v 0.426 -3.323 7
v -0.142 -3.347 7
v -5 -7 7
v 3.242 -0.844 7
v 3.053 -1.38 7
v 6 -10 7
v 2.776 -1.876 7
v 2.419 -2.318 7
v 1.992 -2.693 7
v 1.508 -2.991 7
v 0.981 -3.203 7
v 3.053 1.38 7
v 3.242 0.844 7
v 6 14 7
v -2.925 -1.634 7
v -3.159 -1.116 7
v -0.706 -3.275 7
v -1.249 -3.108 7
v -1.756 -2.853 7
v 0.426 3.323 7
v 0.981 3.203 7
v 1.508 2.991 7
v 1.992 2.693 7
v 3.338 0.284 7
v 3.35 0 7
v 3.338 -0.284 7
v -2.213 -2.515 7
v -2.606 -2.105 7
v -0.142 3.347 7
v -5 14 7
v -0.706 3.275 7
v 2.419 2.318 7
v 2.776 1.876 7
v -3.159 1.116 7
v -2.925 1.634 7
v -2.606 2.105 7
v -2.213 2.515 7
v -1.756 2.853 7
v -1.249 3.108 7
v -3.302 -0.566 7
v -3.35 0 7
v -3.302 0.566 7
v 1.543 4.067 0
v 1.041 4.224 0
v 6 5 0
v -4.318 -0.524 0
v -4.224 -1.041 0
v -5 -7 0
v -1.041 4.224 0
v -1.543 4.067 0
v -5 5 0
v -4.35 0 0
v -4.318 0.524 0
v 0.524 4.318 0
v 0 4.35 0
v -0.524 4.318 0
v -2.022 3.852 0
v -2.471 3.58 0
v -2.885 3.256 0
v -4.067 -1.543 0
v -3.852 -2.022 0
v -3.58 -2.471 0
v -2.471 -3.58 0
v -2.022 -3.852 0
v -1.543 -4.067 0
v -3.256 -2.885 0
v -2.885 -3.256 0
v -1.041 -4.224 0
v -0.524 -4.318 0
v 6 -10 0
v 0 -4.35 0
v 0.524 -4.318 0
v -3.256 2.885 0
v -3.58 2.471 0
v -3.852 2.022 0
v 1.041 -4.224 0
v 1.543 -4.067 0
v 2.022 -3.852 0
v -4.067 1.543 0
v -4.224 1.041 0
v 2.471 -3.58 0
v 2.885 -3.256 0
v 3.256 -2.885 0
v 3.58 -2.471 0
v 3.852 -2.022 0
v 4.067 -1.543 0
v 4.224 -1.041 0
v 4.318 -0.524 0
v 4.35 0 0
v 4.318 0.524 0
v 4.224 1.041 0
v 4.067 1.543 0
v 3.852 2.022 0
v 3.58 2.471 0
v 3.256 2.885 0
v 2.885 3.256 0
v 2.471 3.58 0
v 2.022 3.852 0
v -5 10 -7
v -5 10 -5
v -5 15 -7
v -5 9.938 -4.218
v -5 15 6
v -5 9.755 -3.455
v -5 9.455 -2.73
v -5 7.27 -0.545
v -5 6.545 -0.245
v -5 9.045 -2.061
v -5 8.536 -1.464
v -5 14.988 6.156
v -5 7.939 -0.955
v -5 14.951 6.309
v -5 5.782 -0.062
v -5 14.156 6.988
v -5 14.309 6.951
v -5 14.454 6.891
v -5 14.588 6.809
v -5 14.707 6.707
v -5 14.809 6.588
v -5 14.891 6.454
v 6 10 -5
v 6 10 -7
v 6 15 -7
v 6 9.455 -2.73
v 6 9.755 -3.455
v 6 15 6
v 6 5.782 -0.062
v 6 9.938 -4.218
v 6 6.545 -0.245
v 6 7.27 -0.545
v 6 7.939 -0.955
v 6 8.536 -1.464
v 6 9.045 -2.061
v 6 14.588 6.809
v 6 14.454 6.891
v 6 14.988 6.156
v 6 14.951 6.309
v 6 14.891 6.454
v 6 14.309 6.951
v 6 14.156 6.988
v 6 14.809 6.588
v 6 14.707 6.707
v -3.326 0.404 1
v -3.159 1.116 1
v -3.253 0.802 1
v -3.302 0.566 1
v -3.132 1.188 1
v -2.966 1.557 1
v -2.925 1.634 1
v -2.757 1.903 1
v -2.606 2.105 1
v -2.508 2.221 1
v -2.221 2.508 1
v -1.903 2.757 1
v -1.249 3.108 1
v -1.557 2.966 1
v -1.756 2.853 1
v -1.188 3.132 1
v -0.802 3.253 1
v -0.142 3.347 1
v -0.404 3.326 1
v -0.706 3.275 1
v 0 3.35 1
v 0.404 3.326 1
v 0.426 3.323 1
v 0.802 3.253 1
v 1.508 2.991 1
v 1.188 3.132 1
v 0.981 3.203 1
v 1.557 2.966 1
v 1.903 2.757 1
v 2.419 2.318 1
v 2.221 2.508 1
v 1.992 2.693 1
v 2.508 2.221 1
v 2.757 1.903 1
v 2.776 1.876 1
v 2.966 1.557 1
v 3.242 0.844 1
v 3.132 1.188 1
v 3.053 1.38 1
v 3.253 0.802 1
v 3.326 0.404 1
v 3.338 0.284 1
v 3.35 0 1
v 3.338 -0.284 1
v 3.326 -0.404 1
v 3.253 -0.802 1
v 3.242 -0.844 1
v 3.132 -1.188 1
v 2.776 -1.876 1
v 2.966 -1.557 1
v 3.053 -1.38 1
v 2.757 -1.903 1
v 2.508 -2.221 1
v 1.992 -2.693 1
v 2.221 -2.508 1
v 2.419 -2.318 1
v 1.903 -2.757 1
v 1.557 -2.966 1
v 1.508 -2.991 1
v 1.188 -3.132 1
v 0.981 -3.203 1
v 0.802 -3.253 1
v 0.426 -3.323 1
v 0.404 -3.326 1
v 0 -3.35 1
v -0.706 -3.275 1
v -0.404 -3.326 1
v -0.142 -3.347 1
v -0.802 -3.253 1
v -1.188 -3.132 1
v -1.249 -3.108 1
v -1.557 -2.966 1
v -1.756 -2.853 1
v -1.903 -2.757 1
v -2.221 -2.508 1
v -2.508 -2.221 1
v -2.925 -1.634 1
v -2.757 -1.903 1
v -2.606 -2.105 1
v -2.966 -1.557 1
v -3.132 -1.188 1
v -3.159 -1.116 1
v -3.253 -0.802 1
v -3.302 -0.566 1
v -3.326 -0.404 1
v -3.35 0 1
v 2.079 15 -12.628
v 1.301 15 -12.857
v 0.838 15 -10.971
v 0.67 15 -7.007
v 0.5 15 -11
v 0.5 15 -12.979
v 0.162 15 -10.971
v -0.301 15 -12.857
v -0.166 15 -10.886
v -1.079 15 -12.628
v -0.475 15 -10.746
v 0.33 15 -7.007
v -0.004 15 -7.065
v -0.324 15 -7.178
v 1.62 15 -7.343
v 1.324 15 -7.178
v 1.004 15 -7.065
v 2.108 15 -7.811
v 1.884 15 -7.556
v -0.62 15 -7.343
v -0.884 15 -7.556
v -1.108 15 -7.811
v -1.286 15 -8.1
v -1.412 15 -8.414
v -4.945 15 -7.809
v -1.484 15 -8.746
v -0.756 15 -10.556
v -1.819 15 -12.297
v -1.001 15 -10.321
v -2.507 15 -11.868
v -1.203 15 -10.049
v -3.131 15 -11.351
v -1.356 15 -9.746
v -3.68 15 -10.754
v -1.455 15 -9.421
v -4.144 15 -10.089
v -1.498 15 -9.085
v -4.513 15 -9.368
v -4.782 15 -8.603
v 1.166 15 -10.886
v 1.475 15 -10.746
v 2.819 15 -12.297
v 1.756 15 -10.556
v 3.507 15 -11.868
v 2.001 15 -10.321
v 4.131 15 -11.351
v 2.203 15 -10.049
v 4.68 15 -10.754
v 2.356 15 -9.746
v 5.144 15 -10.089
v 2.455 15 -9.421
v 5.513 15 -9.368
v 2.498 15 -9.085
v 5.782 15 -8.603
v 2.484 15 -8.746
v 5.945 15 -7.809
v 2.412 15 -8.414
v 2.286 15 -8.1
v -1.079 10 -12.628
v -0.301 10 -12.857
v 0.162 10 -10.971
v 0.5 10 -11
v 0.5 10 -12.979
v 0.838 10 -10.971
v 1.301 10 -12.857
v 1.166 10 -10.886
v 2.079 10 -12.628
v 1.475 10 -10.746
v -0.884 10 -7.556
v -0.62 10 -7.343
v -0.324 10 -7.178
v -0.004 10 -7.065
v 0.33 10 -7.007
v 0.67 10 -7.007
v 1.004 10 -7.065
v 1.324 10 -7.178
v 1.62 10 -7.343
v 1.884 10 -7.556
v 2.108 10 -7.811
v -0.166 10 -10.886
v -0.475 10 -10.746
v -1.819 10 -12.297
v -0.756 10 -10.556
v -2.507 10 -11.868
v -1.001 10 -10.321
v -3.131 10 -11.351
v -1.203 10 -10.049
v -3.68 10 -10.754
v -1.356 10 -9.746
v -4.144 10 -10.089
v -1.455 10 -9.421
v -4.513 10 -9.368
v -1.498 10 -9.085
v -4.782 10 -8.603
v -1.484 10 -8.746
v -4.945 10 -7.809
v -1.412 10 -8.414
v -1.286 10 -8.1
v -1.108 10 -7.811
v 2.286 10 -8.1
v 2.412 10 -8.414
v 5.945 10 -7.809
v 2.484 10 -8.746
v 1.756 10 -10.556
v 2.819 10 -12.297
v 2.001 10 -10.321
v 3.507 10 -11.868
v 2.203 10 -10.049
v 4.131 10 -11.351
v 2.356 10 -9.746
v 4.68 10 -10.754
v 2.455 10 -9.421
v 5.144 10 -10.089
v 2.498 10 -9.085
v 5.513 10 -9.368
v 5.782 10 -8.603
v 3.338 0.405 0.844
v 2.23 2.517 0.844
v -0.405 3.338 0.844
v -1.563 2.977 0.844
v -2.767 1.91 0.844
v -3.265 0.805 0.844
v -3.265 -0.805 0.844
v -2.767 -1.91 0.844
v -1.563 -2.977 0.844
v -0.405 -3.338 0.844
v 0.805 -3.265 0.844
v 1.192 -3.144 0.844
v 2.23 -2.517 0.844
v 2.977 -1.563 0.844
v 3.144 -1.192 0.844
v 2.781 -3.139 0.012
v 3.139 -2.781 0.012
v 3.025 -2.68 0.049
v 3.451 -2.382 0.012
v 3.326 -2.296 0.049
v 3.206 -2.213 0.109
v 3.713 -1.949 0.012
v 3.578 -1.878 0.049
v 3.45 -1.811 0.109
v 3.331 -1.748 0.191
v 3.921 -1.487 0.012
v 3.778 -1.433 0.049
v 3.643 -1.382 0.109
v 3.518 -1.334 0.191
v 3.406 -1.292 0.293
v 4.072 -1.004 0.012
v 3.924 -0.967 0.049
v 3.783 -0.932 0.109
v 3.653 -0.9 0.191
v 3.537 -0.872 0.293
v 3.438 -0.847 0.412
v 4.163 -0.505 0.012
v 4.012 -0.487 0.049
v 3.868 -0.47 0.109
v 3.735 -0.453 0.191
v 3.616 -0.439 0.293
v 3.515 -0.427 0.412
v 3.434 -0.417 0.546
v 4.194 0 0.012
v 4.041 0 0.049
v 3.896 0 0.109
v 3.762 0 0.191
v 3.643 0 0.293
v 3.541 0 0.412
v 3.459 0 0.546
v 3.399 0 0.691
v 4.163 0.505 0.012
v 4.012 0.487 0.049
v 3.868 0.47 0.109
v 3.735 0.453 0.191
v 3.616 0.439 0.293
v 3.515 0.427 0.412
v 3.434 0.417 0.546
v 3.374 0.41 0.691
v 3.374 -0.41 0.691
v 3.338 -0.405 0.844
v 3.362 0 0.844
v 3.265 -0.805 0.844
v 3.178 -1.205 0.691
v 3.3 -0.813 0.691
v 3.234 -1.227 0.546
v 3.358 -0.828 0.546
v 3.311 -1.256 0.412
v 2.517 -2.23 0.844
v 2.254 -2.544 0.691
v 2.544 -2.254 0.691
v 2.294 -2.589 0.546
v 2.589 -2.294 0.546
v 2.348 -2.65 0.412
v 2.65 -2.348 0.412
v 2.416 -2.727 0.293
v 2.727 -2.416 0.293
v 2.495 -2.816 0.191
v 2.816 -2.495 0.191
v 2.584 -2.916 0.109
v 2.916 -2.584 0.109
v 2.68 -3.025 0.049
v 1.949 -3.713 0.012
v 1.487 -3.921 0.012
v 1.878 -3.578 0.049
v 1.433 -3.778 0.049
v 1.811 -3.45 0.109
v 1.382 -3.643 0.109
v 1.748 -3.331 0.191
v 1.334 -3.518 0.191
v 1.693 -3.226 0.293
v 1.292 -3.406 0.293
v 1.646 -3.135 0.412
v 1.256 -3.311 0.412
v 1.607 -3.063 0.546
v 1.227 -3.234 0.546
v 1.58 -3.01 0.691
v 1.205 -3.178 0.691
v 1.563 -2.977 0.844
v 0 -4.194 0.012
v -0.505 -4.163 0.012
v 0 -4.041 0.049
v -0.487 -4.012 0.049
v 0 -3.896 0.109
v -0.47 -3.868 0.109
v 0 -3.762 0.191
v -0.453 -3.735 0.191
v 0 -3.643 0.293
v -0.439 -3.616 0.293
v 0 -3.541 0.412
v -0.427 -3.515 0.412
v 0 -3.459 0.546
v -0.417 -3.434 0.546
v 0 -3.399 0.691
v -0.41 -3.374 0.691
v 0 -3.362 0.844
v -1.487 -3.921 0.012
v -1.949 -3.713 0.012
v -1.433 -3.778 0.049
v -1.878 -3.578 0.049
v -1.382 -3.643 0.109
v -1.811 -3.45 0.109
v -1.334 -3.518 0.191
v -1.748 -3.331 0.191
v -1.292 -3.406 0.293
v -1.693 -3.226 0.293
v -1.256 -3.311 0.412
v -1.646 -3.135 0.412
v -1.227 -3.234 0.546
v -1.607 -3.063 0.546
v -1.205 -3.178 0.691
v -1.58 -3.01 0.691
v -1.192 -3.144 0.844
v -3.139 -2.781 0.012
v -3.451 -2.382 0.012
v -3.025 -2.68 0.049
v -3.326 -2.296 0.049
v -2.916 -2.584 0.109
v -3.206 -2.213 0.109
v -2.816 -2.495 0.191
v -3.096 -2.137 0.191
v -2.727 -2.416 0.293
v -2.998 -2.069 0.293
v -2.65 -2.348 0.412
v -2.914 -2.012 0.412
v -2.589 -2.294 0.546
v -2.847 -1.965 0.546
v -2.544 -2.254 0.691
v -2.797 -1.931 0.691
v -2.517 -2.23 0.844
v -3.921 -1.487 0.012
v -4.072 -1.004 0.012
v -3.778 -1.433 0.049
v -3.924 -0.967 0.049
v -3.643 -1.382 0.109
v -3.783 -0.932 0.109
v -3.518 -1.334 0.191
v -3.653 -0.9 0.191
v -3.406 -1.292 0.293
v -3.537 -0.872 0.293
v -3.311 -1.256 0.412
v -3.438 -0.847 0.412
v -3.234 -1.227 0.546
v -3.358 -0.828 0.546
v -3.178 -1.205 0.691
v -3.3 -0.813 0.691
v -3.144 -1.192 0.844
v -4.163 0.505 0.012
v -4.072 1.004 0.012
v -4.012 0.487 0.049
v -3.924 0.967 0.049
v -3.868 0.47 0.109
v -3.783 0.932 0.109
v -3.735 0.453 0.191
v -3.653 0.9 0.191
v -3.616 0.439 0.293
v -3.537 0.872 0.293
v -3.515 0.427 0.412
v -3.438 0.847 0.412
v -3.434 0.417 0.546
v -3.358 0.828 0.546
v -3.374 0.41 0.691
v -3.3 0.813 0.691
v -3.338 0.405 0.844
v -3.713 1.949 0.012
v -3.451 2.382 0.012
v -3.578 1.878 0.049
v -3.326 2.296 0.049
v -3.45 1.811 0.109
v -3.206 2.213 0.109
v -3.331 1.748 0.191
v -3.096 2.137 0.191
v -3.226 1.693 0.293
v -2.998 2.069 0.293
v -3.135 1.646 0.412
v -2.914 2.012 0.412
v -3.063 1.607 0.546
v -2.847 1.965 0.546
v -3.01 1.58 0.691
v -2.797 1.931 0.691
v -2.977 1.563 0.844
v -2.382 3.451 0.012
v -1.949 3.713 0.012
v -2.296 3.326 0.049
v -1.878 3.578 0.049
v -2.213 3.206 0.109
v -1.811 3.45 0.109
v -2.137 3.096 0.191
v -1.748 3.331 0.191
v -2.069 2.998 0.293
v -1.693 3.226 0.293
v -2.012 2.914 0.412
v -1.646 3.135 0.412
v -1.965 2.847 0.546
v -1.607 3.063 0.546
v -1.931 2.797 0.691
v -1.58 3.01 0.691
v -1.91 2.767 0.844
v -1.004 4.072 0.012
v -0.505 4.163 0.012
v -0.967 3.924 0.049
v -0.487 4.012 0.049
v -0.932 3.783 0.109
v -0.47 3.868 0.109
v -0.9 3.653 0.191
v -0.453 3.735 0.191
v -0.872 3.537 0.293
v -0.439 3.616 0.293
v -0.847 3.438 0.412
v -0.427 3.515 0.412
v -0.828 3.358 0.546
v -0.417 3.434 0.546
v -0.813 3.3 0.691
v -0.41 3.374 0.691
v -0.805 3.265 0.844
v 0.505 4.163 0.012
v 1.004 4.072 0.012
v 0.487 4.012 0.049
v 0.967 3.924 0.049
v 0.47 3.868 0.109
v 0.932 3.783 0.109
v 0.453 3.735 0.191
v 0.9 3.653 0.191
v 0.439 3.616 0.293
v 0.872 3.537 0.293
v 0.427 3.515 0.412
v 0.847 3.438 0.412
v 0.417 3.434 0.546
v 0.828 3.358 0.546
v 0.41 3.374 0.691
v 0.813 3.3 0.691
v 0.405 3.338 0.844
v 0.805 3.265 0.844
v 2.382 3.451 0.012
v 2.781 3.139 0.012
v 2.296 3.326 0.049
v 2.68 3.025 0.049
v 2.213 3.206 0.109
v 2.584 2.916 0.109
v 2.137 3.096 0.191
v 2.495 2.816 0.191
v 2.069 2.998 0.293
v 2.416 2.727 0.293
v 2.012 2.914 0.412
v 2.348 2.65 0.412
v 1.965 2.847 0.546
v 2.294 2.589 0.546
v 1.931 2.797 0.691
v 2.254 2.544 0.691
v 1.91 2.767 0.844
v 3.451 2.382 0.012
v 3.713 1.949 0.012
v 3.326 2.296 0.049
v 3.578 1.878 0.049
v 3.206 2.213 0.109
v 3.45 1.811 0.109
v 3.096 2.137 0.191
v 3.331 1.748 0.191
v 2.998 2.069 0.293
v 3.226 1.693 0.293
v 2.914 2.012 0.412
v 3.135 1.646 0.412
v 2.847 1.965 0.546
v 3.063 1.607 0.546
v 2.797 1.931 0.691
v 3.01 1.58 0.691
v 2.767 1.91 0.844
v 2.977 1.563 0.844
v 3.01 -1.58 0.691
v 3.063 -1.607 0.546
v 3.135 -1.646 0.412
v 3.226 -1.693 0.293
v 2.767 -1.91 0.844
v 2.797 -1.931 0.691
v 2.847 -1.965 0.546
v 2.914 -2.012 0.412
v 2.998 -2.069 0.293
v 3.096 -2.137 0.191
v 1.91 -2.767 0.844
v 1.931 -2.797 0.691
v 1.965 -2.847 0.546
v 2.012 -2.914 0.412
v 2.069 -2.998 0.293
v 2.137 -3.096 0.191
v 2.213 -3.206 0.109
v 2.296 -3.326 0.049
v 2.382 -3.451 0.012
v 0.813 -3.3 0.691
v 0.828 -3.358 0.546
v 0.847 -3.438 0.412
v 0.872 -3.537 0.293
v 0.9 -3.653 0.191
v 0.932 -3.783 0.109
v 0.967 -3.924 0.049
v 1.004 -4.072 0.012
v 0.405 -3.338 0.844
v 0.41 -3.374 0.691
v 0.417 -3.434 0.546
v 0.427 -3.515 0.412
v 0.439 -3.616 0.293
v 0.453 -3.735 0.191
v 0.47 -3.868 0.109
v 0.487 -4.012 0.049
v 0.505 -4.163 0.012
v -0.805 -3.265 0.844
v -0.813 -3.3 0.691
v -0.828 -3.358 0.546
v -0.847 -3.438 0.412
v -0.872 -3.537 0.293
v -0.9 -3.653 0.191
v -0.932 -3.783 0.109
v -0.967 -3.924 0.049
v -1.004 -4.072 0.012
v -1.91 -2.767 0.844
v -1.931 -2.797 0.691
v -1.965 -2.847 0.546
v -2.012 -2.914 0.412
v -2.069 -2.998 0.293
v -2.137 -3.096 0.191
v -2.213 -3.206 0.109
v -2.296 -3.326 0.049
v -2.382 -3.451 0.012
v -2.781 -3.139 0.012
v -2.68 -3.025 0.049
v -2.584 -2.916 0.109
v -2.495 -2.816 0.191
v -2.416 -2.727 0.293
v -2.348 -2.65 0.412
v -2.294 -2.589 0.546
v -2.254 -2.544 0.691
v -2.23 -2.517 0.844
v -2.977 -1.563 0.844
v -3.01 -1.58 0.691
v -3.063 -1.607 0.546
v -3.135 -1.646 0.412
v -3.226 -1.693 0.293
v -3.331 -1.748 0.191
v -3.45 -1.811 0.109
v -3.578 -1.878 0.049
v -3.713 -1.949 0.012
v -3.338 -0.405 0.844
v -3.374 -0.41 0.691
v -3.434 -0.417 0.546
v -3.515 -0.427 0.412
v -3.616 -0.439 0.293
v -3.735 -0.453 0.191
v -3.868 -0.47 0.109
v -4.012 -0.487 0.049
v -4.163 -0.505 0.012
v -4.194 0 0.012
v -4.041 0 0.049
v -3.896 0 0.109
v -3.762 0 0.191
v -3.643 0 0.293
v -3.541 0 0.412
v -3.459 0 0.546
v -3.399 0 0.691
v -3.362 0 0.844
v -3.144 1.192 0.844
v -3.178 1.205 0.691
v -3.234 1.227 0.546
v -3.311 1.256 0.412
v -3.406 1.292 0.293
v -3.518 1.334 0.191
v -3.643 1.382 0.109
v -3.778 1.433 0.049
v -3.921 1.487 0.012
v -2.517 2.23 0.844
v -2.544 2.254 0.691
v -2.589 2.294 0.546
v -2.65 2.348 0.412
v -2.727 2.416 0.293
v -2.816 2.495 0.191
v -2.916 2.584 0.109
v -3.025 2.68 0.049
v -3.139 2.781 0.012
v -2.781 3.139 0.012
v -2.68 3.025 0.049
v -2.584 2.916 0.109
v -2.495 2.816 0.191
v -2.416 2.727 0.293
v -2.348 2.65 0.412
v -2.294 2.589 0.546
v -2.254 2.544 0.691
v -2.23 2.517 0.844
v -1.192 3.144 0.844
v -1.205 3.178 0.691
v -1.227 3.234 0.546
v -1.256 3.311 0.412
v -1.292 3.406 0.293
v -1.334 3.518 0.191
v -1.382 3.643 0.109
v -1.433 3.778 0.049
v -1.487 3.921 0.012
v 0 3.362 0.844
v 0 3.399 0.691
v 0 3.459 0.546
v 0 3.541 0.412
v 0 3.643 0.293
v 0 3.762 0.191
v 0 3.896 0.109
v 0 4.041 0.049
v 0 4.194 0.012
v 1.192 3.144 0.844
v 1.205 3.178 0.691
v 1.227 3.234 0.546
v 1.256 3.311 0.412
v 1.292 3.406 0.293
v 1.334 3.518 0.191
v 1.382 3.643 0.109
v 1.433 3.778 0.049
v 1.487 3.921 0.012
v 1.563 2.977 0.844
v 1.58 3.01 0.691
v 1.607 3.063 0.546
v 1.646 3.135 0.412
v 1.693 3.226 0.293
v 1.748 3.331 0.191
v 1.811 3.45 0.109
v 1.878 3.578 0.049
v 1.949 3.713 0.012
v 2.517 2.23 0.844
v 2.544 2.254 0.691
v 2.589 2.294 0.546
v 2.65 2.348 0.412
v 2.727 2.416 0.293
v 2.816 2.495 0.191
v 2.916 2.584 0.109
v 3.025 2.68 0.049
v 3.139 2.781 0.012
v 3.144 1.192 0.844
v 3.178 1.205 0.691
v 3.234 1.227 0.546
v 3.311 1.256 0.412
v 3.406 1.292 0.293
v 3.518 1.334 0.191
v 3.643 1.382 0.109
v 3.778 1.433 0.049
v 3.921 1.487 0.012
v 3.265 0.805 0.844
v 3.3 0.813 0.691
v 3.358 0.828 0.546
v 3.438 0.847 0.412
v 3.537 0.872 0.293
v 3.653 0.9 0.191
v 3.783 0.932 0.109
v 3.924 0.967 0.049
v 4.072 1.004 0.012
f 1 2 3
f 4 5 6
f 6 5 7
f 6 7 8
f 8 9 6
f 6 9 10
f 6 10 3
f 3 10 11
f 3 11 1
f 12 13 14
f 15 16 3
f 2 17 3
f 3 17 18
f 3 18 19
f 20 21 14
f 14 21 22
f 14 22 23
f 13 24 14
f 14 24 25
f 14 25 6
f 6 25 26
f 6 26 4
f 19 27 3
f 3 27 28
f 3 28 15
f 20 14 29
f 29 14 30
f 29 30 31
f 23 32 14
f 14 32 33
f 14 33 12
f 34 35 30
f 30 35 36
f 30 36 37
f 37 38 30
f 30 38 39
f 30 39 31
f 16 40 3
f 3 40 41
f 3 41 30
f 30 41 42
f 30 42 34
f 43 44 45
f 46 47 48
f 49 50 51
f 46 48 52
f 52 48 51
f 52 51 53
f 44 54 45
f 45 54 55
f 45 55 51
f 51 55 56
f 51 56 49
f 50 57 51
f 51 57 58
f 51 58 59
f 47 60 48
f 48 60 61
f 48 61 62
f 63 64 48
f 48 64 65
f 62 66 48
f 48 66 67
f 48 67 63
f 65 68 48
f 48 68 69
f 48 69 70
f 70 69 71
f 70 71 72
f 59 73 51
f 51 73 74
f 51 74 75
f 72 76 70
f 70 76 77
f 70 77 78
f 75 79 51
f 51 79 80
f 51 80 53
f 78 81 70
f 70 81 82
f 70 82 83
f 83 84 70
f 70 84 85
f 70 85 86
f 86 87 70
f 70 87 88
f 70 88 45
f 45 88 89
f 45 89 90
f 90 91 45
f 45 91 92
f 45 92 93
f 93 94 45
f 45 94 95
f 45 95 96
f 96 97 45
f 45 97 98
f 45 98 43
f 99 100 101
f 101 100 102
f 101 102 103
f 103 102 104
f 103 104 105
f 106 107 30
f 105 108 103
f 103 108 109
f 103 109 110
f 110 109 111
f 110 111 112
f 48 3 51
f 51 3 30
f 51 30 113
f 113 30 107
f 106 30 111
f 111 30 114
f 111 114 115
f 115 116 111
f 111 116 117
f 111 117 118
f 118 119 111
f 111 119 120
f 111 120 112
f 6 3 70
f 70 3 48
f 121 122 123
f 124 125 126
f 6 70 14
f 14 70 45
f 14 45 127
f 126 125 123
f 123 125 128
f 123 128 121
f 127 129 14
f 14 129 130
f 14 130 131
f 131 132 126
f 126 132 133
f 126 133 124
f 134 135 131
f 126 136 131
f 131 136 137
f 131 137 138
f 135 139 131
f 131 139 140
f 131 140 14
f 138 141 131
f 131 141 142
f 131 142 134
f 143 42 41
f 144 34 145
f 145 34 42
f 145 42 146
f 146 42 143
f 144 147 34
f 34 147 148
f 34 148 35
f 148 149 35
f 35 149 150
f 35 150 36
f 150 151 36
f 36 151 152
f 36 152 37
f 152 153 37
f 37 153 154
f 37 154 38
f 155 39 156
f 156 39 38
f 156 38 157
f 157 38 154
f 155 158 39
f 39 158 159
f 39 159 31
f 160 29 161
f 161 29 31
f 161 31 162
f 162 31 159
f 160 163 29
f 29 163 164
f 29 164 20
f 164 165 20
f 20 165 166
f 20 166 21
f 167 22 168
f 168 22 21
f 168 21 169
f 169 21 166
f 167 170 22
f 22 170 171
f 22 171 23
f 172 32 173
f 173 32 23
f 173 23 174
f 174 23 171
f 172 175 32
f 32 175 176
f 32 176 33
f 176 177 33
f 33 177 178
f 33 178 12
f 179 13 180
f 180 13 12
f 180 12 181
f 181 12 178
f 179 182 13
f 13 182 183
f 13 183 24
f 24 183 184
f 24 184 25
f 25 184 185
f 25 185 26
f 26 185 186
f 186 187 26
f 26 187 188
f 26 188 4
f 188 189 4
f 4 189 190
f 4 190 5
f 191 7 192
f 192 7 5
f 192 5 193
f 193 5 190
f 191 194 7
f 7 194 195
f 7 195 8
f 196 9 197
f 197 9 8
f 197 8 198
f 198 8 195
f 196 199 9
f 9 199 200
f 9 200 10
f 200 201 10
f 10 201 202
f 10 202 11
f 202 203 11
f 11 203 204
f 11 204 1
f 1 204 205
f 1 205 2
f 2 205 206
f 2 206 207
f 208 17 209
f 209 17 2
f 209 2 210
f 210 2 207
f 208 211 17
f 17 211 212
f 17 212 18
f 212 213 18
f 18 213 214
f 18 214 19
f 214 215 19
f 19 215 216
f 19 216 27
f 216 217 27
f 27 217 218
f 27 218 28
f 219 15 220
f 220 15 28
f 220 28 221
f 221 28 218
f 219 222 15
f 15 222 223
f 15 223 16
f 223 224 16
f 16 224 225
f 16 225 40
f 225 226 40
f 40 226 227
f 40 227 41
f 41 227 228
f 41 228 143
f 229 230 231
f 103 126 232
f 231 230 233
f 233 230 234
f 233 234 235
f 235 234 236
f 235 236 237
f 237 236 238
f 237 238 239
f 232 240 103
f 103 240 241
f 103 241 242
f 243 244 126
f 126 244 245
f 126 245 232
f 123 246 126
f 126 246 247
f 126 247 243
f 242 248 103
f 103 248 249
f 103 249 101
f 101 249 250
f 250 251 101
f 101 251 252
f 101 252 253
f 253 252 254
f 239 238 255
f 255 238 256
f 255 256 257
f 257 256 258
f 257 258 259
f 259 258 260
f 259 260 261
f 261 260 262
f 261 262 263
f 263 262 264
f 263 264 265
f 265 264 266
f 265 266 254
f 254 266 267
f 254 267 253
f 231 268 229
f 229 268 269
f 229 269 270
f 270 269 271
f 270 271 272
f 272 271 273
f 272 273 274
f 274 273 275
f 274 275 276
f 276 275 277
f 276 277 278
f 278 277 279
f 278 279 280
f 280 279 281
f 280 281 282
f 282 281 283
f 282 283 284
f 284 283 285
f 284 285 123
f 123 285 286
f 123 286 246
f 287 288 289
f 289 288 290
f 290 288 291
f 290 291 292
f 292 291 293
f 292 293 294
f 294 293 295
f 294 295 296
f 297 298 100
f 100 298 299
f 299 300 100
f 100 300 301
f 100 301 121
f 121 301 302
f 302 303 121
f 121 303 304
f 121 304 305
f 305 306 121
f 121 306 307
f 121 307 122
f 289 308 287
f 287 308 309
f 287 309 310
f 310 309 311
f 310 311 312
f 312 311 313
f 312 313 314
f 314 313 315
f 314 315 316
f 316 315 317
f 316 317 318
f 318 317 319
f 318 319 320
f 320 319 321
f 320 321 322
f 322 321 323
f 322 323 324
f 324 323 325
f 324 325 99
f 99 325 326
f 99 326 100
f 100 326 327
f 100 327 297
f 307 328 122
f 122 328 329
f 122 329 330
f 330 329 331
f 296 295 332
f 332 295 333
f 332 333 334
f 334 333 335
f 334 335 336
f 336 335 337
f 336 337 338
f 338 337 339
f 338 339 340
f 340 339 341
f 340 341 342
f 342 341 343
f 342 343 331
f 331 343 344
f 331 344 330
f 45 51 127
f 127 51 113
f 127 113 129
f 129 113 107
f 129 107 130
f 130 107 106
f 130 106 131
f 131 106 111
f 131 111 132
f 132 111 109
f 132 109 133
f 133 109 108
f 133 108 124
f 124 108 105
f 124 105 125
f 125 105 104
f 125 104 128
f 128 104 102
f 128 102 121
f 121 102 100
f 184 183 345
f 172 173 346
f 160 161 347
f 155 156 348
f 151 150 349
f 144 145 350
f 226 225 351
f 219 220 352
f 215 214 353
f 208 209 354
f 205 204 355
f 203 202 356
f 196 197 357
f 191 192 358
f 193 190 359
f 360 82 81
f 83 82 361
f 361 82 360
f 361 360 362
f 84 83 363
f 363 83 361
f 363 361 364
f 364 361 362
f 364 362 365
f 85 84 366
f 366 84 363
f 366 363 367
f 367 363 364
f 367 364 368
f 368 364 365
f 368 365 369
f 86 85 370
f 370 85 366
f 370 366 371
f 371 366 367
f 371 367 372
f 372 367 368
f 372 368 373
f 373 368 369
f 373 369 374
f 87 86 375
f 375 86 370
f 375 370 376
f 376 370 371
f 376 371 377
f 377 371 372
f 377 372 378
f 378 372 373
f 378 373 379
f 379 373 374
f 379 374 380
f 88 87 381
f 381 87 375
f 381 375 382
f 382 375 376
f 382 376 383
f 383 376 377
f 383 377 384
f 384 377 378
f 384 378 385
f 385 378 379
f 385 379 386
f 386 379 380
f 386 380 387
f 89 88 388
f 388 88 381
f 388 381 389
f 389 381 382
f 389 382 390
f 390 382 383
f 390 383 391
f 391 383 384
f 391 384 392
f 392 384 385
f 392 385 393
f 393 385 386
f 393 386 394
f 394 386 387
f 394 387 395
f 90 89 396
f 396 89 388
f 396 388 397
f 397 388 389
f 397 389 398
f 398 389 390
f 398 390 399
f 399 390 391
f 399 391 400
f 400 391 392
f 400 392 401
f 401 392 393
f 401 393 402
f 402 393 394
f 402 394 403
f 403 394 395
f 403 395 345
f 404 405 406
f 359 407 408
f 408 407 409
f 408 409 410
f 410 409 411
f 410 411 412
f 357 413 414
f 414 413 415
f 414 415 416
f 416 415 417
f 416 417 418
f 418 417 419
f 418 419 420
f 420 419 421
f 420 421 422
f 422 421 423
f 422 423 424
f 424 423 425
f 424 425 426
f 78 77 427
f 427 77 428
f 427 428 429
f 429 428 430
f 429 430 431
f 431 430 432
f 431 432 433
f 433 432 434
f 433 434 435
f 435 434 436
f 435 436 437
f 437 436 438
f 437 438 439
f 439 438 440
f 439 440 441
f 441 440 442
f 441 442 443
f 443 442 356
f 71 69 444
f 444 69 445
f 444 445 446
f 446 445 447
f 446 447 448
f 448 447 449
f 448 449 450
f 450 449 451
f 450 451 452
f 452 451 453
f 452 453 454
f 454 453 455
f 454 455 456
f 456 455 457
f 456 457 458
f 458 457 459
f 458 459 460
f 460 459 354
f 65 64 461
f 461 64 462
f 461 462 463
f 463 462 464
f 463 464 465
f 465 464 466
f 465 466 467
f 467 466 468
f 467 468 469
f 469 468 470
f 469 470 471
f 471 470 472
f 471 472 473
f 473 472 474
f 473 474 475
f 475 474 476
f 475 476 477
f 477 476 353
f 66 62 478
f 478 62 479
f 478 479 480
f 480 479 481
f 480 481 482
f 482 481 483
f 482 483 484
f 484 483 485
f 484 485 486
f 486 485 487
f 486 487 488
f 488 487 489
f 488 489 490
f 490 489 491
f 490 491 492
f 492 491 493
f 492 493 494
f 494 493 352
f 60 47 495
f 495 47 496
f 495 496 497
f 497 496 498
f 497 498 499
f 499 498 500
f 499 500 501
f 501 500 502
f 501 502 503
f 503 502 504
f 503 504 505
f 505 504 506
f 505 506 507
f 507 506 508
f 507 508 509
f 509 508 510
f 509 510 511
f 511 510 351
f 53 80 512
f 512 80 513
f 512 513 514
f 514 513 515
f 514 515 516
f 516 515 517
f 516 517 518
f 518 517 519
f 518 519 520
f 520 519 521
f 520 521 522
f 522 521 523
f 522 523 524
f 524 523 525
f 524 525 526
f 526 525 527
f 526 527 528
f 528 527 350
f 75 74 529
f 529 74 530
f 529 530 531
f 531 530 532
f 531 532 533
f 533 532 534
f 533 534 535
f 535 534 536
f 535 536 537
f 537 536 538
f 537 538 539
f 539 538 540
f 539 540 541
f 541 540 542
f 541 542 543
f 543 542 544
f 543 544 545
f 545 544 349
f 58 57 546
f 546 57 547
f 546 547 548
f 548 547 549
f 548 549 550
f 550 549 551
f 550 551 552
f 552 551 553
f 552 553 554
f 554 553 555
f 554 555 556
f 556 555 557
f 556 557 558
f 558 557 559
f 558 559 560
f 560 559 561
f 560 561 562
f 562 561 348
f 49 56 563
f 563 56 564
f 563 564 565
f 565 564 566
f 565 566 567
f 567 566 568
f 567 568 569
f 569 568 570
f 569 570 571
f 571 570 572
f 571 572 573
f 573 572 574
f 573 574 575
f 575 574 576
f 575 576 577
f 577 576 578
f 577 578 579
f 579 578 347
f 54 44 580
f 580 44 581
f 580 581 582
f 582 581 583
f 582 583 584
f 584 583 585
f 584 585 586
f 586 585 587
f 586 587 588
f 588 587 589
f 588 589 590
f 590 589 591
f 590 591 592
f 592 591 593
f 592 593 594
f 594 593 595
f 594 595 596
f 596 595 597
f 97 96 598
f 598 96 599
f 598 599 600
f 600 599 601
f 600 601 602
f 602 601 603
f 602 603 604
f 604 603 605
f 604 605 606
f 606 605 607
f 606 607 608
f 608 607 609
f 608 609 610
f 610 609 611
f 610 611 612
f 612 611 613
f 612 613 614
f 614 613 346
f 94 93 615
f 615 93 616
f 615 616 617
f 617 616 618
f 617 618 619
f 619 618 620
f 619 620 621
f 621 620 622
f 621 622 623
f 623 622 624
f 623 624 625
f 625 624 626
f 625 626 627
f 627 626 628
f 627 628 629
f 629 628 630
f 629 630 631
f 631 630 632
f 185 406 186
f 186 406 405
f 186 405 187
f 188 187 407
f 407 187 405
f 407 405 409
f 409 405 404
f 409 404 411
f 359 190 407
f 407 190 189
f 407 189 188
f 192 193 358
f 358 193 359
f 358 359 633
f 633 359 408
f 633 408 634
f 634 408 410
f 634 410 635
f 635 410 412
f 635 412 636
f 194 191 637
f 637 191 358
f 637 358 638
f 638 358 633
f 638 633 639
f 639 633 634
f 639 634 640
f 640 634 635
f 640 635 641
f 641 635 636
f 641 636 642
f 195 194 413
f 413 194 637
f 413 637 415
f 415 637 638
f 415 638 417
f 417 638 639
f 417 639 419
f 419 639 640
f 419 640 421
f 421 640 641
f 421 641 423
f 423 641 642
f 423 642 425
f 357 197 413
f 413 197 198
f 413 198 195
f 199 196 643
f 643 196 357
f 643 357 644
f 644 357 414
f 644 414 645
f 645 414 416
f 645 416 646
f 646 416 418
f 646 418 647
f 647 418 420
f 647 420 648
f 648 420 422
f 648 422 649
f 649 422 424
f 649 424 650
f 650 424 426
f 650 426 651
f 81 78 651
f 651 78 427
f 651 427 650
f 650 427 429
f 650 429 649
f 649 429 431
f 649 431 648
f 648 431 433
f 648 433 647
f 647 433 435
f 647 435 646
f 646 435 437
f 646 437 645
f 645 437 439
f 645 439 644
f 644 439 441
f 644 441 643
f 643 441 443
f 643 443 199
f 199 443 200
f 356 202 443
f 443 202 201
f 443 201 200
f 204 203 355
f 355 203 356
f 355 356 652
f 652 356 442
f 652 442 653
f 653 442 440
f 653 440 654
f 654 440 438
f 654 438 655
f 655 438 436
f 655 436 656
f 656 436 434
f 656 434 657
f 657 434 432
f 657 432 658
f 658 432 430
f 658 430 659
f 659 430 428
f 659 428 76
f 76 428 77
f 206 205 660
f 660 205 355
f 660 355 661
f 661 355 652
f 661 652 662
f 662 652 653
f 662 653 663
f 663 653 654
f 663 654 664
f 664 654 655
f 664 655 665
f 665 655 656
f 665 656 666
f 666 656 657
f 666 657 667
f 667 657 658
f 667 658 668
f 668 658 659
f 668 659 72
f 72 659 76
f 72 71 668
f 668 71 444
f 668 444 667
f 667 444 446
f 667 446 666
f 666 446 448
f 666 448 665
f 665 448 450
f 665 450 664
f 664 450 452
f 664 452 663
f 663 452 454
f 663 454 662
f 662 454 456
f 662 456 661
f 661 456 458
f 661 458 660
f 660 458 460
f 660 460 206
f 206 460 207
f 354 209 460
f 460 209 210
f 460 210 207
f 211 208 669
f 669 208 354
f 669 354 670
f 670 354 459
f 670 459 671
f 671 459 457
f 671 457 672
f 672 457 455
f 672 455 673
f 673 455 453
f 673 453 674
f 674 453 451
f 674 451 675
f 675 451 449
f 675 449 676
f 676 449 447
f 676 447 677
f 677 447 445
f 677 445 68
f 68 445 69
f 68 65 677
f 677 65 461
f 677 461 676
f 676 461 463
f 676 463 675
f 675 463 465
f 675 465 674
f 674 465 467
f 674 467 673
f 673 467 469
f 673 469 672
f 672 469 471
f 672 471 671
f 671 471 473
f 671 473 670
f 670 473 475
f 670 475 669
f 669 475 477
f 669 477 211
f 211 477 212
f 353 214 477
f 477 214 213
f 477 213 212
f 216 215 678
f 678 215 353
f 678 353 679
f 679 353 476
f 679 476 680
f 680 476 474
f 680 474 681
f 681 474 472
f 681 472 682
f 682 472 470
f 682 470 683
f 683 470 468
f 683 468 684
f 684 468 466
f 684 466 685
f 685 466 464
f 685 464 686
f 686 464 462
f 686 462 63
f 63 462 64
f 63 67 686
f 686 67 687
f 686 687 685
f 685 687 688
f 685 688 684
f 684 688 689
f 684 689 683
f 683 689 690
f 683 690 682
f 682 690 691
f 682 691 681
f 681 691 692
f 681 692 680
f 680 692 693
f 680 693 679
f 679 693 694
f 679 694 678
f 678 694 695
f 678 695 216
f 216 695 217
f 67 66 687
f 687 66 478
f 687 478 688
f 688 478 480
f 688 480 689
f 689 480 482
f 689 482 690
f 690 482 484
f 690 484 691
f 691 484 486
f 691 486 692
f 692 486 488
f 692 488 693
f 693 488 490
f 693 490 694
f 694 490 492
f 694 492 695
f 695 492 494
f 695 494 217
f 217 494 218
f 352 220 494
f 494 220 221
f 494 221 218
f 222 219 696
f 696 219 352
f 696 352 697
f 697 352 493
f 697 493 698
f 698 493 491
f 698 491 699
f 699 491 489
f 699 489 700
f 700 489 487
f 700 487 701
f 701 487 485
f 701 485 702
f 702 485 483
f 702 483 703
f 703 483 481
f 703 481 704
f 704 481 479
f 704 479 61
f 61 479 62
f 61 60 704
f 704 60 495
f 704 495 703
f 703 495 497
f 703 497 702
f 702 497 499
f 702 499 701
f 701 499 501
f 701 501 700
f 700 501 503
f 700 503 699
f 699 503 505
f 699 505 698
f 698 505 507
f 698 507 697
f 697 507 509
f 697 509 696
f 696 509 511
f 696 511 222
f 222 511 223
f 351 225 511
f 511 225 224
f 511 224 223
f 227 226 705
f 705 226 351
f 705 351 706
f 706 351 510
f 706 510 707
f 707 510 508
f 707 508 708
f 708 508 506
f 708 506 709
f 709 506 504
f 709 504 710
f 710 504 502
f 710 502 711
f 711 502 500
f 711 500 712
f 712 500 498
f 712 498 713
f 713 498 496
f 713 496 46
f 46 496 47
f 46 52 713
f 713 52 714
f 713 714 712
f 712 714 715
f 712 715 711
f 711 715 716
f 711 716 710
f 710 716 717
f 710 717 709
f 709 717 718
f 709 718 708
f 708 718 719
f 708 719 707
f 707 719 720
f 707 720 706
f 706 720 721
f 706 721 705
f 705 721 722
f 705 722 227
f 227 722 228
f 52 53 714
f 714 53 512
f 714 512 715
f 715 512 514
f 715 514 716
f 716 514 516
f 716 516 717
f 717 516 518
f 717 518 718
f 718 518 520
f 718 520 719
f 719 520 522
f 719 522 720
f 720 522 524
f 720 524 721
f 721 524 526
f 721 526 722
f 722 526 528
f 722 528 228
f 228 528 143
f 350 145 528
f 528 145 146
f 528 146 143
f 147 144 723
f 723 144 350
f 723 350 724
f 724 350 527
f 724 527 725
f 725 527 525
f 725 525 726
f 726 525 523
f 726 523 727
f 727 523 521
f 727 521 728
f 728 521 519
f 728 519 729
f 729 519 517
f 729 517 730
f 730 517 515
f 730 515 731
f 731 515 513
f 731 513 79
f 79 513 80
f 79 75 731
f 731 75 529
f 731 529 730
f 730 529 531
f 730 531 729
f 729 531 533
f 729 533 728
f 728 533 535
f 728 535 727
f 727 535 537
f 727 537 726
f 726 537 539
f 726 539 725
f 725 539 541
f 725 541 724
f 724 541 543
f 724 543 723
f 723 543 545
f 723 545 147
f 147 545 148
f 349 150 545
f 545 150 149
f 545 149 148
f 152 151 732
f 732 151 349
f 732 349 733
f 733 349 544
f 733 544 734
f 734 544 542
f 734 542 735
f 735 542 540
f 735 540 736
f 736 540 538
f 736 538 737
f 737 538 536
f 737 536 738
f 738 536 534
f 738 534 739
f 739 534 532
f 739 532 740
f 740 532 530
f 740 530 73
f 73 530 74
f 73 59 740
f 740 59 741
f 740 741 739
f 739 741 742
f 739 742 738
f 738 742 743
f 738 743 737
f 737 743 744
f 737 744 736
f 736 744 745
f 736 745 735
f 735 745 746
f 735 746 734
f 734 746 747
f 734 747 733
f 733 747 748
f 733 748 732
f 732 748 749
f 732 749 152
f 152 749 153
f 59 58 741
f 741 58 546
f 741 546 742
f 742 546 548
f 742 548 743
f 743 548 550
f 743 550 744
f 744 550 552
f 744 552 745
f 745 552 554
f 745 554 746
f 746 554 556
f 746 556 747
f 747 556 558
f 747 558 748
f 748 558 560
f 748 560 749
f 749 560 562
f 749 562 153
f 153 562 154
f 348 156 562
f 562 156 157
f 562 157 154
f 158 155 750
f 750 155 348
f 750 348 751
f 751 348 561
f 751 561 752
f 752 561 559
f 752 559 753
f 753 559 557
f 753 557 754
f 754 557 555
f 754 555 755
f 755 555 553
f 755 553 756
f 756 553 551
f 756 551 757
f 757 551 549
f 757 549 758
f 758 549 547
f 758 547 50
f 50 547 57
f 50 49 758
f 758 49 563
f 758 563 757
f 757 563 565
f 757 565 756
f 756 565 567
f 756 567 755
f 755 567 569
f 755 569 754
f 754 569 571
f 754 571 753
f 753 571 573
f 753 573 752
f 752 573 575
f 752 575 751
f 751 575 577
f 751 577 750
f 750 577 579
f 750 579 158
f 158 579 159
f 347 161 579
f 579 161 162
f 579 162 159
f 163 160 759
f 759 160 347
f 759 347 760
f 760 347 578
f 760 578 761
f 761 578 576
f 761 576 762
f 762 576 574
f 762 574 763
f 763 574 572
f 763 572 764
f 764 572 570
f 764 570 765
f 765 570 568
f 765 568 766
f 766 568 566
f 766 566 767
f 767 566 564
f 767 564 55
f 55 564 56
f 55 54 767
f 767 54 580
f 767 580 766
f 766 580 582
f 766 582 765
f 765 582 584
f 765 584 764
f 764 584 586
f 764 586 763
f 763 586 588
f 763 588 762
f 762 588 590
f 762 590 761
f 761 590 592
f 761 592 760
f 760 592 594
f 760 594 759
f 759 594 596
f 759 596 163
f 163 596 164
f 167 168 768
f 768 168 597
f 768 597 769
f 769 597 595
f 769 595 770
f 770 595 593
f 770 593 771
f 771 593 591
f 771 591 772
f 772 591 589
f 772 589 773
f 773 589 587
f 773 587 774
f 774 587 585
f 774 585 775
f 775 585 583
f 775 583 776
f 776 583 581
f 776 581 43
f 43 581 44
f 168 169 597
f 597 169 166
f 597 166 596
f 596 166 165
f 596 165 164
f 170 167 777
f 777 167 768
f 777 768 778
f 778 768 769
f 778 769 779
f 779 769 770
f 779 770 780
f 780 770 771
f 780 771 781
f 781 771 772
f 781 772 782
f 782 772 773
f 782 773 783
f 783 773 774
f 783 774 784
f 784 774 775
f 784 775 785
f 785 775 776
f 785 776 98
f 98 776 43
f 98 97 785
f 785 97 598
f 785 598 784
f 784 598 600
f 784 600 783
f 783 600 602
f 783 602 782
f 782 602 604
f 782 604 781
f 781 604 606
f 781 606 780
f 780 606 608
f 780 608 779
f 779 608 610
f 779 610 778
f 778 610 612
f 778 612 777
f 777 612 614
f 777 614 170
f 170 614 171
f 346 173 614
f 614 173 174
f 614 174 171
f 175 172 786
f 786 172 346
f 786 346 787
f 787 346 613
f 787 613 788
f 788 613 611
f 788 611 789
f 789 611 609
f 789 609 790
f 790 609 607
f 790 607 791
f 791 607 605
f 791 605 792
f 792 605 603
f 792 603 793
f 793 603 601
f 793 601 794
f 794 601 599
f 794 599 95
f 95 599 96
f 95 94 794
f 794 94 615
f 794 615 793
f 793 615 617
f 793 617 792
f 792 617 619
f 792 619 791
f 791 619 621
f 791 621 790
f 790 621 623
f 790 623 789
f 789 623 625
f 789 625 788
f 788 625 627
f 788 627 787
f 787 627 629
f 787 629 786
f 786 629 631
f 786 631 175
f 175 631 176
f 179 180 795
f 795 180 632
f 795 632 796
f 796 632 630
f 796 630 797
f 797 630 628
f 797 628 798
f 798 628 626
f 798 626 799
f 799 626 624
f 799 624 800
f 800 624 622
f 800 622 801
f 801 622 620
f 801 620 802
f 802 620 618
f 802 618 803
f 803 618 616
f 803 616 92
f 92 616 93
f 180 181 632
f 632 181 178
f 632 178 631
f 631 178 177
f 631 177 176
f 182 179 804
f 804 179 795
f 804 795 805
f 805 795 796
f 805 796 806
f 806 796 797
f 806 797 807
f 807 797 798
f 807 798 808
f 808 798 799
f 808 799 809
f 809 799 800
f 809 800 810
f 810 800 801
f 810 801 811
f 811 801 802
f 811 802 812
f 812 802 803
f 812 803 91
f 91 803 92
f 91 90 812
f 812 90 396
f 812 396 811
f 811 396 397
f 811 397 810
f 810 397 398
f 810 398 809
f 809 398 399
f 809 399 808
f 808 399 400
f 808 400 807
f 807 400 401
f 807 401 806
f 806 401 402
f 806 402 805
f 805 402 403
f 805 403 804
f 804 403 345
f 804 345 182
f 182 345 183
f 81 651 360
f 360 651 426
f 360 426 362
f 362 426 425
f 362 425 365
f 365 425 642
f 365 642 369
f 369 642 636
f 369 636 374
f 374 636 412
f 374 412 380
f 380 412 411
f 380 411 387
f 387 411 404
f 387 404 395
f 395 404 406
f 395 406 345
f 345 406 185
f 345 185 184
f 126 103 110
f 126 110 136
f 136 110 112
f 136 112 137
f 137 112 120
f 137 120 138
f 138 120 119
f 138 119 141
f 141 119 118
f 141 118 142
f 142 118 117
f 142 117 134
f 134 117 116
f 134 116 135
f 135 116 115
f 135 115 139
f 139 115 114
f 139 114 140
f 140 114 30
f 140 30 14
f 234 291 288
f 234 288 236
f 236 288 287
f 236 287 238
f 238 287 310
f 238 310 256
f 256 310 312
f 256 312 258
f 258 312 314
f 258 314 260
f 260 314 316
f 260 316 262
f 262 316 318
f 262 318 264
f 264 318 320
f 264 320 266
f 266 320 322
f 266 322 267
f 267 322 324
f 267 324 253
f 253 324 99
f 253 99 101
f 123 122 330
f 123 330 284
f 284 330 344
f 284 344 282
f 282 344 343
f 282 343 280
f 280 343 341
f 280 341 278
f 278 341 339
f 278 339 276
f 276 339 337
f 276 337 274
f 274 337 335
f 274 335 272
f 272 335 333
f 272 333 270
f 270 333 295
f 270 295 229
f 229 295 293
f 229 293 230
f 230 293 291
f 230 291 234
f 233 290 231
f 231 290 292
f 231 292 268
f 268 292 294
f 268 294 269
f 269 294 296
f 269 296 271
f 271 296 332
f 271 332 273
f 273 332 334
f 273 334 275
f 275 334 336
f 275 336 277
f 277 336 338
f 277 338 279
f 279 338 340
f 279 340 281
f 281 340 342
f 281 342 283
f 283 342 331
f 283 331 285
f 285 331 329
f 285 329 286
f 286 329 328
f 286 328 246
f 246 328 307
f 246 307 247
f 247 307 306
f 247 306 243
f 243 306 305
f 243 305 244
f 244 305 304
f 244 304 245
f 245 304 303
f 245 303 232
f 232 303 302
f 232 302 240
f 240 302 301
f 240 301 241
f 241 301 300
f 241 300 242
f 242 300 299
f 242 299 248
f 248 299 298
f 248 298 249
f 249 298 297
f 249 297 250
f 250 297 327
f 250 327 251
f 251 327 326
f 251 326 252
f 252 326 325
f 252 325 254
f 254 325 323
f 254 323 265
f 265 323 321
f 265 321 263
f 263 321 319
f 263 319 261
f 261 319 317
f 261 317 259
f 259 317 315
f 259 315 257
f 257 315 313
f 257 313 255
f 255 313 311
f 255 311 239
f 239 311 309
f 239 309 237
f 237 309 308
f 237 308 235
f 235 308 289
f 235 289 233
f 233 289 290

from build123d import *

# Parameters (mm, degrees)
SKETCH_1_R          = 3.35
EXTRUDE_1_DEPTH     = 7
SKETCH_2_W          = 11
SKETCH_2_H          = 20
EXTRUDE_2_DEPTH     = 5
FILLET_1_R          = 5
FILLET_2_R          = 1
FILLET_4_R          = 1
FILLET_11_R         = 6
SKETCH_3_R          = 2
CUT_EXTRUDE_2_DEPTH = 10


with BuildPart() as part:
    # Эскиз1 → Бобышка-Вытянуть1 (new body)
    with BuildSketch(Plane.XY):
        Polygon((-5, 10), (6, 10), (6, -10), (-5, -7), align=None)
        Circle(SKETCH_1_R, mode=Mode.SUBTRACT)
    extrude(amount=EXTRUDE_1_DEPTH)

    # Эскиз2 → Бобышка-Вытянуть2 (add)
    with BuildSketch(Plane(origin=(0, 10, 0), x_dir=(1, 0, 0), z_dir=(0, 1, 0))):
        with Locations((0.5, 3)):
            Rectangle(SKETCH_2_W, SKETCH_2_H)
    extrude(amount=EXTRUDE_2_DEPTH)

    # Скругление1
    fillet_1_edges = [part.edges().sort_by_distance(p)[0] for p in [
        (0.5, 10, 0),
    ]]
    fillet(fillet_1_edges, radius=FILLET_1_R)

    # Скругление2
    fillet_2_edges = [part.edges().sort_by_distance(p)[0] for p in [
        (-3.35, 0, 0),
    ]]
    fillet(fillet_2_edges, radius=FILLET_2_R)

    # Скругление4
    fillet_4_edges = [part.edges().sort_by_distance(p)[0] for p in [
        (0.5, 15, 7),
    ]]
    fillet(fillet_4_edges, radius=FILLET_4_R)

    # Скругление11
    # the kernel refuses this fillet: 6 mm, written as the material it takes off along each edge
    with BuildSketch(Plane(origin=(6, -5, -13), x_dir=(0, 0, 1), z_dir=(0, 1, 0)), Plane(origin=(-5, -5, -13), x_dir=(1, 0, 0), z_dir=(0, 1, 0))) as fillet_11_piece_1:
        with BuildLine():
            CenterArc((FILLET_11_R, -FILLET_11_R), FILLET_11_R, 90, 90)
            Line((0, -FILLET_11_R), (0, 0))
            Line((0, 0), (FILLET_11_R, 0))
        make_face()
    extrude(amount=35, mode=Mode.SUBTRACT)

    # Эскиз3 → Вырез-Вытянуть2 (cut)
    with BuildSketch(Plane.XZ.offset(-10)):
        with Locations(Location((0.5, -9, 0), (0, 0, 270))):
            Circle(SKETCH_3_R)
    extrude(amount=-CUT_EXTRUDE_2_DEPTH, mode=Mode.SUBTRACT)


solid = part.part
